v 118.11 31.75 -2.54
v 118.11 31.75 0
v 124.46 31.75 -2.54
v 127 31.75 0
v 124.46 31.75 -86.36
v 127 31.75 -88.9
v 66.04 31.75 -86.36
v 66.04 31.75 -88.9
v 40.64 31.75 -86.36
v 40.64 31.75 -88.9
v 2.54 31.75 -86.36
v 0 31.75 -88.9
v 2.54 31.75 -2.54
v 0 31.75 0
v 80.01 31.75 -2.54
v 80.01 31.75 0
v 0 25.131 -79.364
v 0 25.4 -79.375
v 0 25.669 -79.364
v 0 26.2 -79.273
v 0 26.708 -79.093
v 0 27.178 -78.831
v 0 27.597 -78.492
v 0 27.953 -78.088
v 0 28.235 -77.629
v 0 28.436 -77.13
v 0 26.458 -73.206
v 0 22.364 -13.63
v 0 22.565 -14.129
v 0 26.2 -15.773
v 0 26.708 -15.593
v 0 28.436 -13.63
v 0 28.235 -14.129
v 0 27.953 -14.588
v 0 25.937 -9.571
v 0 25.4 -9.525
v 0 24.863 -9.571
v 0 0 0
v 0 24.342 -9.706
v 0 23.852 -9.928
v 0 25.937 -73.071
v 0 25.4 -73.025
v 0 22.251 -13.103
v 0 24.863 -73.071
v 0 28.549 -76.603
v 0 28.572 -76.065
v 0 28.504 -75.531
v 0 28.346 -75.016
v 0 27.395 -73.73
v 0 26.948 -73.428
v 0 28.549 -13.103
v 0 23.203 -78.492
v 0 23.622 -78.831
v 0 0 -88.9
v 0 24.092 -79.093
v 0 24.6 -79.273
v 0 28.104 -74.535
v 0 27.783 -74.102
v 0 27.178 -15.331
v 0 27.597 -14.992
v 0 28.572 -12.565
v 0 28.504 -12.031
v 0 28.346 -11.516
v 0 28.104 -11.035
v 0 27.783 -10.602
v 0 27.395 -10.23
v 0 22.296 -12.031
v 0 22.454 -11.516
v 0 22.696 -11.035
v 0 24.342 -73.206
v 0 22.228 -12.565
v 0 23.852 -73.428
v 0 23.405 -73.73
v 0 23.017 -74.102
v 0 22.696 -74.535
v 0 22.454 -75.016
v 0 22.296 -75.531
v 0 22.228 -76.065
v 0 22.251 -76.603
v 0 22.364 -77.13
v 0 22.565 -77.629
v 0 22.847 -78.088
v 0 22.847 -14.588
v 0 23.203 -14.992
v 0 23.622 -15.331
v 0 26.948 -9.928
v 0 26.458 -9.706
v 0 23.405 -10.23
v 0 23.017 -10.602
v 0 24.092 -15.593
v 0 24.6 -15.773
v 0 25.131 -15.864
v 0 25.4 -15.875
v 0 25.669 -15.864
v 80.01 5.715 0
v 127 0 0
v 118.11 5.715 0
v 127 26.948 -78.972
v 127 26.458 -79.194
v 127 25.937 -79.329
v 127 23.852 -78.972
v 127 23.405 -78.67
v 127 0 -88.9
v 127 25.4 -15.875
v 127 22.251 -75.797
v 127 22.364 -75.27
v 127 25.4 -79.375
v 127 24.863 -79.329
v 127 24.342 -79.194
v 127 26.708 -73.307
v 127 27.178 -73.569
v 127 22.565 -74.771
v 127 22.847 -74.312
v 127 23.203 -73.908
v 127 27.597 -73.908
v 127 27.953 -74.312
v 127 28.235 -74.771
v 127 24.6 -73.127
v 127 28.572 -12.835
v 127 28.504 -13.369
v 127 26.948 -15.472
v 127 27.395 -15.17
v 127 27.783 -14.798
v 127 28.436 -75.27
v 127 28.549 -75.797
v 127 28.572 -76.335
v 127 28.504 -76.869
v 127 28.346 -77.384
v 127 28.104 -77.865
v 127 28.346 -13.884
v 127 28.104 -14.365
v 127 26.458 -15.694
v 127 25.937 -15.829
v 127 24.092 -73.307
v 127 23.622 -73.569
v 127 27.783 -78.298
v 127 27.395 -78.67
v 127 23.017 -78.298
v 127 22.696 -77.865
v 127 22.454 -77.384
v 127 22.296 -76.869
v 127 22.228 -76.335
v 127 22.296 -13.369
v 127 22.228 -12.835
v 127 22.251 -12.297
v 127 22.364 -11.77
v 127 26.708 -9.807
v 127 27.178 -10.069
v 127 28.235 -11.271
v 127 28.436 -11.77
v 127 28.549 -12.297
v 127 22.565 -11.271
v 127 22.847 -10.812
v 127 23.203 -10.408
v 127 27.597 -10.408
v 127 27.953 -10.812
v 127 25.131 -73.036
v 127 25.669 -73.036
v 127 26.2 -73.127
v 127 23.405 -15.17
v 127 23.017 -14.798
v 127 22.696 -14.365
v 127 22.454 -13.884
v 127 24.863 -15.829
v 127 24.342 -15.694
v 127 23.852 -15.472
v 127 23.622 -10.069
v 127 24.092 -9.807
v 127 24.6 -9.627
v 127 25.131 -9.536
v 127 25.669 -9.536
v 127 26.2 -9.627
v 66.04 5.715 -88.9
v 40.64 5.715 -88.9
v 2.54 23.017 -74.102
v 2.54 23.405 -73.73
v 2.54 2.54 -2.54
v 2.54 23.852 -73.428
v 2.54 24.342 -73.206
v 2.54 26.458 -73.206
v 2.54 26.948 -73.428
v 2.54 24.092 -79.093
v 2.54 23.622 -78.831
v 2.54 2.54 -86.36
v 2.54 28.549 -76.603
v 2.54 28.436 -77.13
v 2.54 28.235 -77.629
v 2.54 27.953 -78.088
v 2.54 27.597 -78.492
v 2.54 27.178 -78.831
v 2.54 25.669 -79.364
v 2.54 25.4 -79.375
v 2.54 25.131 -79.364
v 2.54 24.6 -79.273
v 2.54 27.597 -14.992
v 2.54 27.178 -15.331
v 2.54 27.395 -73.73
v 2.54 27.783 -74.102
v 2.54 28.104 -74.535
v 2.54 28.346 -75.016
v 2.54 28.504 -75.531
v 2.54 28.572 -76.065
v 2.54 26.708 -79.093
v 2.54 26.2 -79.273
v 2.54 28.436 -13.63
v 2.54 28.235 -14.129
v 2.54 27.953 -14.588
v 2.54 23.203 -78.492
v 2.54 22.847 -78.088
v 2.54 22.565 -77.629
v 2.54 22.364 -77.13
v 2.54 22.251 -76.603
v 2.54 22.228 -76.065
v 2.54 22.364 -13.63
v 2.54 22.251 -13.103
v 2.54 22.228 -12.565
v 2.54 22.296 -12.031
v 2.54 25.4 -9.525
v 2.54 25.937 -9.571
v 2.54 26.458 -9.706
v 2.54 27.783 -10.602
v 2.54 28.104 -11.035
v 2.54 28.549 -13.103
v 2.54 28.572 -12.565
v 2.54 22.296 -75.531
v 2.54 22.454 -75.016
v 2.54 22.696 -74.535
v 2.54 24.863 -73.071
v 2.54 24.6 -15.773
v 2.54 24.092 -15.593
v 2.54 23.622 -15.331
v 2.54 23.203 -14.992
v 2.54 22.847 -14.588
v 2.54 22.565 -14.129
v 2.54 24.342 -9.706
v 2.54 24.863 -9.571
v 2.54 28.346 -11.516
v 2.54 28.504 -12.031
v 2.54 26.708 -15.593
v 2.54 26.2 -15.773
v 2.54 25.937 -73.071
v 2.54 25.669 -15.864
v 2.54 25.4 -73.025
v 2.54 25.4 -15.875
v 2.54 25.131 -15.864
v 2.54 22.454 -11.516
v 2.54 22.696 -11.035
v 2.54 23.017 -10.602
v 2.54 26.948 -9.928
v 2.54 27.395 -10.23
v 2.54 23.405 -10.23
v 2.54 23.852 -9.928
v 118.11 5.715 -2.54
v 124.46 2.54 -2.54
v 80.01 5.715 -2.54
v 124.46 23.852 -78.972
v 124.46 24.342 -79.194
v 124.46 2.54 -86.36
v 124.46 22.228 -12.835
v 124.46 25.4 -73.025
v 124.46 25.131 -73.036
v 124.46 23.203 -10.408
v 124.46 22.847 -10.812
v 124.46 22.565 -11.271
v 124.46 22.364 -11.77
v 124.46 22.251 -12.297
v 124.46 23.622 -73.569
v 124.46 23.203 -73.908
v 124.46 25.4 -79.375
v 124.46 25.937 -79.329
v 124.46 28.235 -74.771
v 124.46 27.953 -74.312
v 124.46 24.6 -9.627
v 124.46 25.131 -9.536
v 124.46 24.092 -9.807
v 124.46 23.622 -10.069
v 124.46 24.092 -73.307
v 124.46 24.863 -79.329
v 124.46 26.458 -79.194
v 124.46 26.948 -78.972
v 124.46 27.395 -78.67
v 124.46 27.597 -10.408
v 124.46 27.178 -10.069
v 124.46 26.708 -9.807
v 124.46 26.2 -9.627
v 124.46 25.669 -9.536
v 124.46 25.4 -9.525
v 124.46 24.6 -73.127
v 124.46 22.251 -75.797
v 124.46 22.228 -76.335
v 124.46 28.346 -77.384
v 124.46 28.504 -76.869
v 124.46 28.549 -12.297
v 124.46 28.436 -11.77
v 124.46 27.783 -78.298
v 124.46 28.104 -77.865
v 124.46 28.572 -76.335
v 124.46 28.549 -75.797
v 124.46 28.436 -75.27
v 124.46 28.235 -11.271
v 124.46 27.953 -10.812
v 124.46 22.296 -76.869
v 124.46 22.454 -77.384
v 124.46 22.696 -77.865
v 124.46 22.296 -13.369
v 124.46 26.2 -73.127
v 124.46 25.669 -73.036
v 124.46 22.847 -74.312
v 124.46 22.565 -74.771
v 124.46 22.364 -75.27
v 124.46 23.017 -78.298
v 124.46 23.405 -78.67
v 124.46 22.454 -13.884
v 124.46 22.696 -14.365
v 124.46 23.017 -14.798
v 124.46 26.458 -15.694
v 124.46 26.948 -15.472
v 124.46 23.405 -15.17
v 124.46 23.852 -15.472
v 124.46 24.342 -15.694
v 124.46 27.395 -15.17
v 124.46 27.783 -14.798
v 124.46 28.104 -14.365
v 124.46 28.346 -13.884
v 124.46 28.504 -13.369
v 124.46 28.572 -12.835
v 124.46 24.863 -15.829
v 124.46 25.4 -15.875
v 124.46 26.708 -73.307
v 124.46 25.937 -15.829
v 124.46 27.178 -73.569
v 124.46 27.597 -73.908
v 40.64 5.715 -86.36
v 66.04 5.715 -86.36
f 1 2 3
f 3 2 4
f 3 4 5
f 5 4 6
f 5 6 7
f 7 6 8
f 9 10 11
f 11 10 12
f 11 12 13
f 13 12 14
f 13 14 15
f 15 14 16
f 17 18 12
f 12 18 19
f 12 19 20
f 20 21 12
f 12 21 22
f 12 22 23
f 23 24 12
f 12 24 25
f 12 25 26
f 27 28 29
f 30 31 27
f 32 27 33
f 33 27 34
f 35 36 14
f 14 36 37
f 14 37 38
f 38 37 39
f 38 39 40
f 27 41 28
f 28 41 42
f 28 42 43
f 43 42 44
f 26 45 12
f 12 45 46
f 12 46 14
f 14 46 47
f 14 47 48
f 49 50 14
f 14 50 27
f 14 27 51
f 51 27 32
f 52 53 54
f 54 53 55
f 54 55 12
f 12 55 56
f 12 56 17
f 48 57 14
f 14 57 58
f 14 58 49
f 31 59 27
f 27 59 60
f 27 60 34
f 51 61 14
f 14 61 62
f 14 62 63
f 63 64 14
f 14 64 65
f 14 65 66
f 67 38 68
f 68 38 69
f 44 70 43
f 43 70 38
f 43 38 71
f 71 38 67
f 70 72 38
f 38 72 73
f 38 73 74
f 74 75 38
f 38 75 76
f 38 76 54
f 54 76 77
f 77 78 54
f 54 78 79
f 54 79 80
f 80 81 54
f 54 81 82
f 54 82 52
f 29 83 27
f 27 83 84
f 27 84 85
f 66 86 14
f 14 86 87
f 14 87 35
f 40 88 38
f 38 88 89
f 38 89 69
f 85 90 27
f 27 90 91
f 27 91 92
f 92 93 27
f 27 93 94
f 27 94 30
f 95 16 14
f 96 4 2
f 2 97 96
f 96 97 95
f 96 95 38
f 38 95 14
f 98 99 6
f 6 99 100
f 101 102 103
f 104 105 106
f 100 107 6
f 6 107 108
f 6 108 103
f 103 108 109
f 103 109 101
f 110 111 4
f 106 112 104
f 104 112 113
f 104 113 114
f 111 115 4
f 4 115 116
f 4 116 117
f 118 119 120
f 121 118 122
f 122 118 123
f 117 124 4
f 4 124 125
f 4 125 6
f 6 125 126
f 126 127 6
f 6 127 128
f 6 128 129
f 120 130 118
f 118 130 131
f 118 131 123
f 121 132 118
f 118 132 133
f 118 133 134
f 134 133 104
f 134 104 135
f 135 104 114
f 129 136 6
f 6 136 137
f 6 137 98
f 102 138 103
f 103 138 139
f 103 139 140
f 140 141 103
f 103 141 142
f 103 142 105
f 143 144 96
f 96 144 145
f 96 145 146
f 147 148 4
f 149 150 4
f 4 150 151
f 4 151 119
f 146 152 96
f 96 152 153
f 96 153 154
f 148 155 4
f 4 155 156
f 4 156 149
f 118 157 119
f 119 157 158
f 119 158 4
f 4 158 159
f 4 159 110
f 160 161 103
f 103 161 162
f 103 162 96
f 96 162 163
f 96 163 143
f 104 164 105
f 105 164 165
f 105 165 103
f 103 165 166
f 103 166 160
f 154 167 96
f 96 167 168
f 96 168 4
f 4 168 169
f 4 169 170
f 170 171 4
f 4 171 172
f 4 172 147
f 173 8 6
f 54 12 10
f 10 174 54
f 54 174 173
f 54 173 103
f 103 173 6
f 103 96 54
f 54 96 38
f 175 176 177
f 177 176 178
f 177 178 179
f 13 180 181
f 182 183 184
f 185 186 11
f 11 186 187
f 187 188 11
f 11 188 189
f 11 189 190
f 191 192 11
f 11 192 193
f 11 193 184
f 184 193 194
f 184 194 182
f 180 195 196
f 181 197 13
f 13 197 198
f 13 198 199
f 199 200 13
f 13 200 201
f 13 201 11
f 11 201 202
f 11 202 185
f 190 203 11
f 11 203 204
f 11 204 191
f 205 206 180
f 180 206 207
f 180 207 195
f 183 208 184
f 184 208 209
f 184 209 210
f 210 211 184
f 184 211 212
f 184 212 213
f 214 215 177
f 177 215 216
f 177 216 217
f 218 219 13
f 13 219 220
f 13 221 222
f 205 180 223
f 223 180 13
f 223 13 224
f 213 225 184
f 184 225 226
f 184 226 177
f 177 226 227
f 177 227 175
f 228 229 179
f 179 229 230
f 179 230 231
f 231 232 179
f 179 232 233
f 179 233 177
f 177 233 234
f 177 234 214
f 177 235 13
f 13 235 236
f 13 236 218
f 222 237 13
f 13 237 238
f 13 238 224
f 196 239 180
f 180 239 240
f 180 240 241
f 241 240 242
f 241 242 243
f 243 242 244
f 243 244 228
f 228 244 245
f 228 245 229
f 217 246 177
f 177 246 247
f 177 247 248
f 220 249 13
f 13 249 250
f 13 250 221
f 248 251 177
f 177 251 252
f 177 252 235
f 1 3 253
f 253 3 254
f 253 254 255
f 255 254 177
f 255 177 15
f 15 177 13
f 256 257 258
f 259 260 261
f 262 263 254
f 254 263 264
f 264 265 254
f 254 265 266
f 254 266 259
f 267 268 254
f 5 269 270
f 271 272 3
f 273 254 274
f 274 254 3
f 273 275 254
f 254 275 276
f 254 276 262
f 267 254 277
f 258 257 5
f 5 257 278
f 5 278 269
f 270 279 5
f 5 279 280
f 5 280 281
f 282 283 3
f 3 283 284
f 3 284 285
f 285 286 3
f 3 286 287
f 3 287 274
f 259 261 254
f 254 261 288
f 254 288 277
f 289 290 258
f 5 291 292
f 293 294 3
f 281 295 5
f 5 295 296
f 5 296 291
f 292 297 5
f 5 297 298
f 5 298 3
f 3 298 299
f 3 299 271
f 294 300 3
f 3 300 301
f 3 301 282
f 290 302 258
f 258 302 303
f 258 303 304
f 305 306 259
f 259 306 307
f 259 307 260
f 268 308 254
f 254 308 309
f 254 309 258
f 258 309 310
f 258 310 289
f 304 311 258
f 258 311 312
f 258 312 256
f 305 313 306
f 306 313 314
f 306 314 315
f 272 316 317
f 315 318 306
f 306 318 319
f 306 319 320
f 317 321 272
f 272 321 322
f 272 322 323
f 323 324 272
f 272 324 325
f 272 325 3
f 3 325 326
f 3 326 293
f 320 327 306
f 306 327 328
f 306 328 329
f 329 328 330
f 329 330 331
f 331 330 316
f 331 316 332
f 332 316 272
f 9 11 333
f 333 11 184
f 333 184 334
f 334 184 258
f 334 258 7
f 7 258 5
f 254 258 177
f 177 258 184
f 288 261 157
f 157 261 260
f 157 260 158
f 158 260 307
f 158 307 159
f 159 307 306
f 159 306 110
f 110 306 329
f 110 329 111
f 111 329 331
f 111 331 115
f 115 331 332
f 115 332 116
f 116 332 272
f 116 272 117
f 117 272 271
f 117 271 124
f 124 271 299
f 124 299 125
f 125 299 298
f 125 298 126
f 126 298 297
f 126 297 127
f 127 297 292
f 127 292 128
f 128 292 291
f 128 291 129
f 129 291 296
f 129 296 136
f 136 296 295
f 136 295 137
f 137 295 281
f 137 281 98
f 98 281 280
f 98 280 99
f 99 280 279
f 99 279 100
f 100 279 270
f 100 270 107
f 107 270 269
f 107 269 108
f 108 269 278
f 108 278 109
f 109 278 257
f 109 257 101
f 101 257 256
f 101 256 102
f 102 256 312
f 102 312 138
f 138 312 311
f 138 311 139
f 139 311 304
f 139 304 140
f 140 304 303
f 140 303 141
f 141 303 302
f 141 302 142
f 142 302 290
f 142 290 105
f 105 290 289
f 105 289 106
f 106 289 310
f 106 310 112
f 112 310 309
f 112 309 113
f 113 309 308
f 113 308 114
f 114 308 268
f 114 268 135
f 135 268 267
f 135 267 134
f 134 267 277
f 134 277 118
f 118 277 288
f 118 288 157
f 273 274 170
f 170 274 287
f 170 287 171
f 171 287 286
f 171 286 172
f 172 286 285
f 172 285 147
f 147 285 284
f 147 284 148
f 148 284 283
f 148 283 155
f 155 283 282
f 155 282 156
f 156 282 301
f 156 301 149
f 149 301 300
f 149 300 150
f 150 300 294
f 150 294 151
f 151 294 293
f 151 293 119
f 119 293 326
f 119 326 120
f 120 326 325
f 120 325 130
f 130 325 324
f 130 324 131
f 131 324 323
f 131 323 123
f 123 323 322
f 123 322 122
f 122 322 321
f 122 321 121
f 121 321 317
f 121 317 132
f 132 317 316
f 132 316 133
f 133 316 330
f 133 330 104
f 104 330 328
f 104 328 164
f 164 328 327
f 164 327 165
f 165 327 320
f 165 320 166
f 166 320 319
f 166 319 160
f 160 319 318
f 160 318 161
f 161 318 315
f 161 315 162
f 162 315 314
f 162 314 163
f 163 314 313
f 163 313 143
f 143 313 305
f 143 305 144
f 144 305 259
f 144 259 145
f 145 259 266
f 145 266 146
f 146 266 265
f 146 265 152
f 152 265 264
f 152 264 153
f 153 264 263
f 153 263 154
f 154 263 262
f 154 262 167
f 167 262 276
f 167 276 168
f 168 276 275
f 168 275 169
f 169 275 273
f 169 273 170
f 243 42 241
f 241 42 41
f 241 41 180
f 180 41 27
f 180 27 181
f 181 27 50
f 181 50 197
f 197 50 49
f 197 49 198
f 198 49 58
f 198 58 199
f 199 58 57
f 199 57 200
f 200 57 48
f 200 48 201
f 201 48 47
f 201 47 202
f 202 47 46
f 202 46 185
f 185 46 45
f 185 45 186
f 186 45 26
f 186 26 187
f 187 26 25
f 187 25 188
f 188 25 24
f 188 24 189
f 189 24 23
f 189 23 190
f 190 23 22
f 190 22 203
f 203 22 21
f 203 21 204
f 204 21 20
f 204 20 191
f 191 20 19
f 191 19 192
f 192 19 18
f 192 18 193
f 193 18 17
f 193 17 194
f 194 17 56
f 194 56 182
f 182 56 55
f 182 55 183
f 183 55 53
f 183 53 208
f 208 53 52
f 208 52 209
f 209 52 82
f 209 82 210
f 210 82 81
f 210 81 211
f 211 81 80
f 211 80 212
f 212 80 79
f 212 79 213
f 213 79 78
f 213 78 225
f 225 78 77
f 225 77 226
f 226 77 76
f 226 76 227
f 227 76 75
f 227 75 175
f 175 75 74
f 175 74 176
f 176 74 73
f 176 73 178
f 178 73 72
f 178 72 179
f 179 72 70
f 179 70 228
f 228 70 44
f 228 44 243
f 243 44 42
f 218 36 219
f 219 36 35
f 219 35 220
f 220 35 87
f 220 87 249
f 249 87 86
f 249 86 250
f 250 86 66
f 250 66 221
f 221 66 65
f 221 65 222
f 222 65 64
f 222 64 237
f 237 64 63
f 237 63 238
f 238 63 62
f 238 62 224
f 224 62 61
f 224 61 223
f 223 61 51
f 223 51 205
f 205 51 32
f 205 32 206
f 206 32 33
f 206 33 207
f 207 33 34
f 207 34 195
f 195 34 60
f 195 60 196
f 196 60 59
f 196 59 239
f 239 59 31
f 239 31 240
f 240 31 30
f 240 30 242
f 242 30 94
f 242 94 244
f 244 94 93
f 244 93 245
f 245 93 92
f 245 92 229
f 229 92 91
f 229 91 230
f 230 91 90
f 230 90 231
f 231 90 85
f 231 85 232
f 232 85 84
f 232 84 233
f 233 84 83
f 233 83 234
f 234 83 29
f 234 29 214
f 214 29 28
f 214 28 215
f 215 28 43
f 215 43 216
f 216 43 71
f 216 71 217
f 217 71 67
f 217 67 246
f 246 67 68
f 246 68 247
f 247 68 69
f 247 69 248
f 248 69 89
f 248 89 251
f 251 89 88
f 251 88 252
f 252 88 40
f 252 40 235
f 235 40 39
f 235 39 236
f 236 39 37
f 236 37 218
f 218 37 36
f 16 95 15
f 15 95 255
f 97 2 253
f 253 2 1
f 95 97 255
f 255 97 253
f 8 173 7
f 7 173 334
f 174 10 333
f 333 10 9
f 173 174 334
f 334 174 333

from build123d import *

# Parameters (mm, degrees)
SKETCH1_W           = 127
SKETCH1_H           = 88.9
BOSS_EXTRUDE1_DEPTH = 31.75
SHELL1_T            = -2.54
SKETCH3_R           = 3.175
CUT_EXTRUDE2_DEPTH  = 31.75
SKETCH4_W           = 38.1
SKETCH4_H           = 26.035
CUT_EXTRUDE3_DEPTH  = 31.75
SKETCH5_W           = 25.4
SKETCH5_H           = 26.035
CUT_EXTRUDE4_DEPTH  = 31.75


with BuildPart() as part:
    # Sketch1 → Boss-Extrude1 (new body)
    with BuildSketch(Plane(origin=(0, 0, 0), x_dir=(1, 0, 0), z_dir=(0, 1, 0))):
        with Locations((63.5, 44.45)):
            Rectangle(SKETCH1_W, SKETCH1_H)
    extrude(amount=BOSS_EXTRUDE1_DEPTH)

    # Shell1
    shell1_openings = [part.faces().sort_by_distance(p)[0] for p in [
        (63.5, 31.75, -44.45),
    ]]
    offset(amount=SHELL1_T, openings=shell1_openings, kind=Kind.INTERSECTION)

    # Sketch3 → Cut-Extrude2 (cut)
    with BuildSketch(Plane(origin=(127, 0, 0), x_dir=(0, 0, -1), z_dir=(1, 0, 0))):
        with Locations((12.7, 25.4)):
            Circle(SKETCH3_R)
        with Locations((76.2, 25.4)):
            Circle(SKETCH3_R)
    cut_extrude2 = extrude(amount=-CUT_EXTRUDE2_DEPTH, mode=Mode.SUBTRACT)

    # Mirror2: Cut-Extrude2 across plane
    add(cut_extrude2.mirror(Plane(origin=(63.5, 0, 0), x_dir=(0, 0, 1), z_dir=(1, 0, 0))), mode=Mode.SUBTRACT)

    # Sketch4 → Cut-Extrude3 (cut)
    with BuildSketch(Plane.XY):
        with Locations((99.06, 18.7325)):
            Rectangle(SKETCH4_W, SKETCH4_H)
    extrude(amount=-CUT_EXTRUDE3_DEPTH, mode=Mode.SUBTRACT)

    # Sketch5 → Cut-Extrude4 (cut)
    with BuildSketch(Plane(origin=(0, 0, -88.9), x_dir=(-1, 0, 0), z_dir=(0, 0, -1))):
        with Locations((-53.34, 18.7325)):
            Rectangle(SKETCH5_W, SKETCH5_H)
    extrude(amount=-CUT_EXTRUDE4_DEPTH, mode=Mode.SUBTRACT)


solid = part.part
